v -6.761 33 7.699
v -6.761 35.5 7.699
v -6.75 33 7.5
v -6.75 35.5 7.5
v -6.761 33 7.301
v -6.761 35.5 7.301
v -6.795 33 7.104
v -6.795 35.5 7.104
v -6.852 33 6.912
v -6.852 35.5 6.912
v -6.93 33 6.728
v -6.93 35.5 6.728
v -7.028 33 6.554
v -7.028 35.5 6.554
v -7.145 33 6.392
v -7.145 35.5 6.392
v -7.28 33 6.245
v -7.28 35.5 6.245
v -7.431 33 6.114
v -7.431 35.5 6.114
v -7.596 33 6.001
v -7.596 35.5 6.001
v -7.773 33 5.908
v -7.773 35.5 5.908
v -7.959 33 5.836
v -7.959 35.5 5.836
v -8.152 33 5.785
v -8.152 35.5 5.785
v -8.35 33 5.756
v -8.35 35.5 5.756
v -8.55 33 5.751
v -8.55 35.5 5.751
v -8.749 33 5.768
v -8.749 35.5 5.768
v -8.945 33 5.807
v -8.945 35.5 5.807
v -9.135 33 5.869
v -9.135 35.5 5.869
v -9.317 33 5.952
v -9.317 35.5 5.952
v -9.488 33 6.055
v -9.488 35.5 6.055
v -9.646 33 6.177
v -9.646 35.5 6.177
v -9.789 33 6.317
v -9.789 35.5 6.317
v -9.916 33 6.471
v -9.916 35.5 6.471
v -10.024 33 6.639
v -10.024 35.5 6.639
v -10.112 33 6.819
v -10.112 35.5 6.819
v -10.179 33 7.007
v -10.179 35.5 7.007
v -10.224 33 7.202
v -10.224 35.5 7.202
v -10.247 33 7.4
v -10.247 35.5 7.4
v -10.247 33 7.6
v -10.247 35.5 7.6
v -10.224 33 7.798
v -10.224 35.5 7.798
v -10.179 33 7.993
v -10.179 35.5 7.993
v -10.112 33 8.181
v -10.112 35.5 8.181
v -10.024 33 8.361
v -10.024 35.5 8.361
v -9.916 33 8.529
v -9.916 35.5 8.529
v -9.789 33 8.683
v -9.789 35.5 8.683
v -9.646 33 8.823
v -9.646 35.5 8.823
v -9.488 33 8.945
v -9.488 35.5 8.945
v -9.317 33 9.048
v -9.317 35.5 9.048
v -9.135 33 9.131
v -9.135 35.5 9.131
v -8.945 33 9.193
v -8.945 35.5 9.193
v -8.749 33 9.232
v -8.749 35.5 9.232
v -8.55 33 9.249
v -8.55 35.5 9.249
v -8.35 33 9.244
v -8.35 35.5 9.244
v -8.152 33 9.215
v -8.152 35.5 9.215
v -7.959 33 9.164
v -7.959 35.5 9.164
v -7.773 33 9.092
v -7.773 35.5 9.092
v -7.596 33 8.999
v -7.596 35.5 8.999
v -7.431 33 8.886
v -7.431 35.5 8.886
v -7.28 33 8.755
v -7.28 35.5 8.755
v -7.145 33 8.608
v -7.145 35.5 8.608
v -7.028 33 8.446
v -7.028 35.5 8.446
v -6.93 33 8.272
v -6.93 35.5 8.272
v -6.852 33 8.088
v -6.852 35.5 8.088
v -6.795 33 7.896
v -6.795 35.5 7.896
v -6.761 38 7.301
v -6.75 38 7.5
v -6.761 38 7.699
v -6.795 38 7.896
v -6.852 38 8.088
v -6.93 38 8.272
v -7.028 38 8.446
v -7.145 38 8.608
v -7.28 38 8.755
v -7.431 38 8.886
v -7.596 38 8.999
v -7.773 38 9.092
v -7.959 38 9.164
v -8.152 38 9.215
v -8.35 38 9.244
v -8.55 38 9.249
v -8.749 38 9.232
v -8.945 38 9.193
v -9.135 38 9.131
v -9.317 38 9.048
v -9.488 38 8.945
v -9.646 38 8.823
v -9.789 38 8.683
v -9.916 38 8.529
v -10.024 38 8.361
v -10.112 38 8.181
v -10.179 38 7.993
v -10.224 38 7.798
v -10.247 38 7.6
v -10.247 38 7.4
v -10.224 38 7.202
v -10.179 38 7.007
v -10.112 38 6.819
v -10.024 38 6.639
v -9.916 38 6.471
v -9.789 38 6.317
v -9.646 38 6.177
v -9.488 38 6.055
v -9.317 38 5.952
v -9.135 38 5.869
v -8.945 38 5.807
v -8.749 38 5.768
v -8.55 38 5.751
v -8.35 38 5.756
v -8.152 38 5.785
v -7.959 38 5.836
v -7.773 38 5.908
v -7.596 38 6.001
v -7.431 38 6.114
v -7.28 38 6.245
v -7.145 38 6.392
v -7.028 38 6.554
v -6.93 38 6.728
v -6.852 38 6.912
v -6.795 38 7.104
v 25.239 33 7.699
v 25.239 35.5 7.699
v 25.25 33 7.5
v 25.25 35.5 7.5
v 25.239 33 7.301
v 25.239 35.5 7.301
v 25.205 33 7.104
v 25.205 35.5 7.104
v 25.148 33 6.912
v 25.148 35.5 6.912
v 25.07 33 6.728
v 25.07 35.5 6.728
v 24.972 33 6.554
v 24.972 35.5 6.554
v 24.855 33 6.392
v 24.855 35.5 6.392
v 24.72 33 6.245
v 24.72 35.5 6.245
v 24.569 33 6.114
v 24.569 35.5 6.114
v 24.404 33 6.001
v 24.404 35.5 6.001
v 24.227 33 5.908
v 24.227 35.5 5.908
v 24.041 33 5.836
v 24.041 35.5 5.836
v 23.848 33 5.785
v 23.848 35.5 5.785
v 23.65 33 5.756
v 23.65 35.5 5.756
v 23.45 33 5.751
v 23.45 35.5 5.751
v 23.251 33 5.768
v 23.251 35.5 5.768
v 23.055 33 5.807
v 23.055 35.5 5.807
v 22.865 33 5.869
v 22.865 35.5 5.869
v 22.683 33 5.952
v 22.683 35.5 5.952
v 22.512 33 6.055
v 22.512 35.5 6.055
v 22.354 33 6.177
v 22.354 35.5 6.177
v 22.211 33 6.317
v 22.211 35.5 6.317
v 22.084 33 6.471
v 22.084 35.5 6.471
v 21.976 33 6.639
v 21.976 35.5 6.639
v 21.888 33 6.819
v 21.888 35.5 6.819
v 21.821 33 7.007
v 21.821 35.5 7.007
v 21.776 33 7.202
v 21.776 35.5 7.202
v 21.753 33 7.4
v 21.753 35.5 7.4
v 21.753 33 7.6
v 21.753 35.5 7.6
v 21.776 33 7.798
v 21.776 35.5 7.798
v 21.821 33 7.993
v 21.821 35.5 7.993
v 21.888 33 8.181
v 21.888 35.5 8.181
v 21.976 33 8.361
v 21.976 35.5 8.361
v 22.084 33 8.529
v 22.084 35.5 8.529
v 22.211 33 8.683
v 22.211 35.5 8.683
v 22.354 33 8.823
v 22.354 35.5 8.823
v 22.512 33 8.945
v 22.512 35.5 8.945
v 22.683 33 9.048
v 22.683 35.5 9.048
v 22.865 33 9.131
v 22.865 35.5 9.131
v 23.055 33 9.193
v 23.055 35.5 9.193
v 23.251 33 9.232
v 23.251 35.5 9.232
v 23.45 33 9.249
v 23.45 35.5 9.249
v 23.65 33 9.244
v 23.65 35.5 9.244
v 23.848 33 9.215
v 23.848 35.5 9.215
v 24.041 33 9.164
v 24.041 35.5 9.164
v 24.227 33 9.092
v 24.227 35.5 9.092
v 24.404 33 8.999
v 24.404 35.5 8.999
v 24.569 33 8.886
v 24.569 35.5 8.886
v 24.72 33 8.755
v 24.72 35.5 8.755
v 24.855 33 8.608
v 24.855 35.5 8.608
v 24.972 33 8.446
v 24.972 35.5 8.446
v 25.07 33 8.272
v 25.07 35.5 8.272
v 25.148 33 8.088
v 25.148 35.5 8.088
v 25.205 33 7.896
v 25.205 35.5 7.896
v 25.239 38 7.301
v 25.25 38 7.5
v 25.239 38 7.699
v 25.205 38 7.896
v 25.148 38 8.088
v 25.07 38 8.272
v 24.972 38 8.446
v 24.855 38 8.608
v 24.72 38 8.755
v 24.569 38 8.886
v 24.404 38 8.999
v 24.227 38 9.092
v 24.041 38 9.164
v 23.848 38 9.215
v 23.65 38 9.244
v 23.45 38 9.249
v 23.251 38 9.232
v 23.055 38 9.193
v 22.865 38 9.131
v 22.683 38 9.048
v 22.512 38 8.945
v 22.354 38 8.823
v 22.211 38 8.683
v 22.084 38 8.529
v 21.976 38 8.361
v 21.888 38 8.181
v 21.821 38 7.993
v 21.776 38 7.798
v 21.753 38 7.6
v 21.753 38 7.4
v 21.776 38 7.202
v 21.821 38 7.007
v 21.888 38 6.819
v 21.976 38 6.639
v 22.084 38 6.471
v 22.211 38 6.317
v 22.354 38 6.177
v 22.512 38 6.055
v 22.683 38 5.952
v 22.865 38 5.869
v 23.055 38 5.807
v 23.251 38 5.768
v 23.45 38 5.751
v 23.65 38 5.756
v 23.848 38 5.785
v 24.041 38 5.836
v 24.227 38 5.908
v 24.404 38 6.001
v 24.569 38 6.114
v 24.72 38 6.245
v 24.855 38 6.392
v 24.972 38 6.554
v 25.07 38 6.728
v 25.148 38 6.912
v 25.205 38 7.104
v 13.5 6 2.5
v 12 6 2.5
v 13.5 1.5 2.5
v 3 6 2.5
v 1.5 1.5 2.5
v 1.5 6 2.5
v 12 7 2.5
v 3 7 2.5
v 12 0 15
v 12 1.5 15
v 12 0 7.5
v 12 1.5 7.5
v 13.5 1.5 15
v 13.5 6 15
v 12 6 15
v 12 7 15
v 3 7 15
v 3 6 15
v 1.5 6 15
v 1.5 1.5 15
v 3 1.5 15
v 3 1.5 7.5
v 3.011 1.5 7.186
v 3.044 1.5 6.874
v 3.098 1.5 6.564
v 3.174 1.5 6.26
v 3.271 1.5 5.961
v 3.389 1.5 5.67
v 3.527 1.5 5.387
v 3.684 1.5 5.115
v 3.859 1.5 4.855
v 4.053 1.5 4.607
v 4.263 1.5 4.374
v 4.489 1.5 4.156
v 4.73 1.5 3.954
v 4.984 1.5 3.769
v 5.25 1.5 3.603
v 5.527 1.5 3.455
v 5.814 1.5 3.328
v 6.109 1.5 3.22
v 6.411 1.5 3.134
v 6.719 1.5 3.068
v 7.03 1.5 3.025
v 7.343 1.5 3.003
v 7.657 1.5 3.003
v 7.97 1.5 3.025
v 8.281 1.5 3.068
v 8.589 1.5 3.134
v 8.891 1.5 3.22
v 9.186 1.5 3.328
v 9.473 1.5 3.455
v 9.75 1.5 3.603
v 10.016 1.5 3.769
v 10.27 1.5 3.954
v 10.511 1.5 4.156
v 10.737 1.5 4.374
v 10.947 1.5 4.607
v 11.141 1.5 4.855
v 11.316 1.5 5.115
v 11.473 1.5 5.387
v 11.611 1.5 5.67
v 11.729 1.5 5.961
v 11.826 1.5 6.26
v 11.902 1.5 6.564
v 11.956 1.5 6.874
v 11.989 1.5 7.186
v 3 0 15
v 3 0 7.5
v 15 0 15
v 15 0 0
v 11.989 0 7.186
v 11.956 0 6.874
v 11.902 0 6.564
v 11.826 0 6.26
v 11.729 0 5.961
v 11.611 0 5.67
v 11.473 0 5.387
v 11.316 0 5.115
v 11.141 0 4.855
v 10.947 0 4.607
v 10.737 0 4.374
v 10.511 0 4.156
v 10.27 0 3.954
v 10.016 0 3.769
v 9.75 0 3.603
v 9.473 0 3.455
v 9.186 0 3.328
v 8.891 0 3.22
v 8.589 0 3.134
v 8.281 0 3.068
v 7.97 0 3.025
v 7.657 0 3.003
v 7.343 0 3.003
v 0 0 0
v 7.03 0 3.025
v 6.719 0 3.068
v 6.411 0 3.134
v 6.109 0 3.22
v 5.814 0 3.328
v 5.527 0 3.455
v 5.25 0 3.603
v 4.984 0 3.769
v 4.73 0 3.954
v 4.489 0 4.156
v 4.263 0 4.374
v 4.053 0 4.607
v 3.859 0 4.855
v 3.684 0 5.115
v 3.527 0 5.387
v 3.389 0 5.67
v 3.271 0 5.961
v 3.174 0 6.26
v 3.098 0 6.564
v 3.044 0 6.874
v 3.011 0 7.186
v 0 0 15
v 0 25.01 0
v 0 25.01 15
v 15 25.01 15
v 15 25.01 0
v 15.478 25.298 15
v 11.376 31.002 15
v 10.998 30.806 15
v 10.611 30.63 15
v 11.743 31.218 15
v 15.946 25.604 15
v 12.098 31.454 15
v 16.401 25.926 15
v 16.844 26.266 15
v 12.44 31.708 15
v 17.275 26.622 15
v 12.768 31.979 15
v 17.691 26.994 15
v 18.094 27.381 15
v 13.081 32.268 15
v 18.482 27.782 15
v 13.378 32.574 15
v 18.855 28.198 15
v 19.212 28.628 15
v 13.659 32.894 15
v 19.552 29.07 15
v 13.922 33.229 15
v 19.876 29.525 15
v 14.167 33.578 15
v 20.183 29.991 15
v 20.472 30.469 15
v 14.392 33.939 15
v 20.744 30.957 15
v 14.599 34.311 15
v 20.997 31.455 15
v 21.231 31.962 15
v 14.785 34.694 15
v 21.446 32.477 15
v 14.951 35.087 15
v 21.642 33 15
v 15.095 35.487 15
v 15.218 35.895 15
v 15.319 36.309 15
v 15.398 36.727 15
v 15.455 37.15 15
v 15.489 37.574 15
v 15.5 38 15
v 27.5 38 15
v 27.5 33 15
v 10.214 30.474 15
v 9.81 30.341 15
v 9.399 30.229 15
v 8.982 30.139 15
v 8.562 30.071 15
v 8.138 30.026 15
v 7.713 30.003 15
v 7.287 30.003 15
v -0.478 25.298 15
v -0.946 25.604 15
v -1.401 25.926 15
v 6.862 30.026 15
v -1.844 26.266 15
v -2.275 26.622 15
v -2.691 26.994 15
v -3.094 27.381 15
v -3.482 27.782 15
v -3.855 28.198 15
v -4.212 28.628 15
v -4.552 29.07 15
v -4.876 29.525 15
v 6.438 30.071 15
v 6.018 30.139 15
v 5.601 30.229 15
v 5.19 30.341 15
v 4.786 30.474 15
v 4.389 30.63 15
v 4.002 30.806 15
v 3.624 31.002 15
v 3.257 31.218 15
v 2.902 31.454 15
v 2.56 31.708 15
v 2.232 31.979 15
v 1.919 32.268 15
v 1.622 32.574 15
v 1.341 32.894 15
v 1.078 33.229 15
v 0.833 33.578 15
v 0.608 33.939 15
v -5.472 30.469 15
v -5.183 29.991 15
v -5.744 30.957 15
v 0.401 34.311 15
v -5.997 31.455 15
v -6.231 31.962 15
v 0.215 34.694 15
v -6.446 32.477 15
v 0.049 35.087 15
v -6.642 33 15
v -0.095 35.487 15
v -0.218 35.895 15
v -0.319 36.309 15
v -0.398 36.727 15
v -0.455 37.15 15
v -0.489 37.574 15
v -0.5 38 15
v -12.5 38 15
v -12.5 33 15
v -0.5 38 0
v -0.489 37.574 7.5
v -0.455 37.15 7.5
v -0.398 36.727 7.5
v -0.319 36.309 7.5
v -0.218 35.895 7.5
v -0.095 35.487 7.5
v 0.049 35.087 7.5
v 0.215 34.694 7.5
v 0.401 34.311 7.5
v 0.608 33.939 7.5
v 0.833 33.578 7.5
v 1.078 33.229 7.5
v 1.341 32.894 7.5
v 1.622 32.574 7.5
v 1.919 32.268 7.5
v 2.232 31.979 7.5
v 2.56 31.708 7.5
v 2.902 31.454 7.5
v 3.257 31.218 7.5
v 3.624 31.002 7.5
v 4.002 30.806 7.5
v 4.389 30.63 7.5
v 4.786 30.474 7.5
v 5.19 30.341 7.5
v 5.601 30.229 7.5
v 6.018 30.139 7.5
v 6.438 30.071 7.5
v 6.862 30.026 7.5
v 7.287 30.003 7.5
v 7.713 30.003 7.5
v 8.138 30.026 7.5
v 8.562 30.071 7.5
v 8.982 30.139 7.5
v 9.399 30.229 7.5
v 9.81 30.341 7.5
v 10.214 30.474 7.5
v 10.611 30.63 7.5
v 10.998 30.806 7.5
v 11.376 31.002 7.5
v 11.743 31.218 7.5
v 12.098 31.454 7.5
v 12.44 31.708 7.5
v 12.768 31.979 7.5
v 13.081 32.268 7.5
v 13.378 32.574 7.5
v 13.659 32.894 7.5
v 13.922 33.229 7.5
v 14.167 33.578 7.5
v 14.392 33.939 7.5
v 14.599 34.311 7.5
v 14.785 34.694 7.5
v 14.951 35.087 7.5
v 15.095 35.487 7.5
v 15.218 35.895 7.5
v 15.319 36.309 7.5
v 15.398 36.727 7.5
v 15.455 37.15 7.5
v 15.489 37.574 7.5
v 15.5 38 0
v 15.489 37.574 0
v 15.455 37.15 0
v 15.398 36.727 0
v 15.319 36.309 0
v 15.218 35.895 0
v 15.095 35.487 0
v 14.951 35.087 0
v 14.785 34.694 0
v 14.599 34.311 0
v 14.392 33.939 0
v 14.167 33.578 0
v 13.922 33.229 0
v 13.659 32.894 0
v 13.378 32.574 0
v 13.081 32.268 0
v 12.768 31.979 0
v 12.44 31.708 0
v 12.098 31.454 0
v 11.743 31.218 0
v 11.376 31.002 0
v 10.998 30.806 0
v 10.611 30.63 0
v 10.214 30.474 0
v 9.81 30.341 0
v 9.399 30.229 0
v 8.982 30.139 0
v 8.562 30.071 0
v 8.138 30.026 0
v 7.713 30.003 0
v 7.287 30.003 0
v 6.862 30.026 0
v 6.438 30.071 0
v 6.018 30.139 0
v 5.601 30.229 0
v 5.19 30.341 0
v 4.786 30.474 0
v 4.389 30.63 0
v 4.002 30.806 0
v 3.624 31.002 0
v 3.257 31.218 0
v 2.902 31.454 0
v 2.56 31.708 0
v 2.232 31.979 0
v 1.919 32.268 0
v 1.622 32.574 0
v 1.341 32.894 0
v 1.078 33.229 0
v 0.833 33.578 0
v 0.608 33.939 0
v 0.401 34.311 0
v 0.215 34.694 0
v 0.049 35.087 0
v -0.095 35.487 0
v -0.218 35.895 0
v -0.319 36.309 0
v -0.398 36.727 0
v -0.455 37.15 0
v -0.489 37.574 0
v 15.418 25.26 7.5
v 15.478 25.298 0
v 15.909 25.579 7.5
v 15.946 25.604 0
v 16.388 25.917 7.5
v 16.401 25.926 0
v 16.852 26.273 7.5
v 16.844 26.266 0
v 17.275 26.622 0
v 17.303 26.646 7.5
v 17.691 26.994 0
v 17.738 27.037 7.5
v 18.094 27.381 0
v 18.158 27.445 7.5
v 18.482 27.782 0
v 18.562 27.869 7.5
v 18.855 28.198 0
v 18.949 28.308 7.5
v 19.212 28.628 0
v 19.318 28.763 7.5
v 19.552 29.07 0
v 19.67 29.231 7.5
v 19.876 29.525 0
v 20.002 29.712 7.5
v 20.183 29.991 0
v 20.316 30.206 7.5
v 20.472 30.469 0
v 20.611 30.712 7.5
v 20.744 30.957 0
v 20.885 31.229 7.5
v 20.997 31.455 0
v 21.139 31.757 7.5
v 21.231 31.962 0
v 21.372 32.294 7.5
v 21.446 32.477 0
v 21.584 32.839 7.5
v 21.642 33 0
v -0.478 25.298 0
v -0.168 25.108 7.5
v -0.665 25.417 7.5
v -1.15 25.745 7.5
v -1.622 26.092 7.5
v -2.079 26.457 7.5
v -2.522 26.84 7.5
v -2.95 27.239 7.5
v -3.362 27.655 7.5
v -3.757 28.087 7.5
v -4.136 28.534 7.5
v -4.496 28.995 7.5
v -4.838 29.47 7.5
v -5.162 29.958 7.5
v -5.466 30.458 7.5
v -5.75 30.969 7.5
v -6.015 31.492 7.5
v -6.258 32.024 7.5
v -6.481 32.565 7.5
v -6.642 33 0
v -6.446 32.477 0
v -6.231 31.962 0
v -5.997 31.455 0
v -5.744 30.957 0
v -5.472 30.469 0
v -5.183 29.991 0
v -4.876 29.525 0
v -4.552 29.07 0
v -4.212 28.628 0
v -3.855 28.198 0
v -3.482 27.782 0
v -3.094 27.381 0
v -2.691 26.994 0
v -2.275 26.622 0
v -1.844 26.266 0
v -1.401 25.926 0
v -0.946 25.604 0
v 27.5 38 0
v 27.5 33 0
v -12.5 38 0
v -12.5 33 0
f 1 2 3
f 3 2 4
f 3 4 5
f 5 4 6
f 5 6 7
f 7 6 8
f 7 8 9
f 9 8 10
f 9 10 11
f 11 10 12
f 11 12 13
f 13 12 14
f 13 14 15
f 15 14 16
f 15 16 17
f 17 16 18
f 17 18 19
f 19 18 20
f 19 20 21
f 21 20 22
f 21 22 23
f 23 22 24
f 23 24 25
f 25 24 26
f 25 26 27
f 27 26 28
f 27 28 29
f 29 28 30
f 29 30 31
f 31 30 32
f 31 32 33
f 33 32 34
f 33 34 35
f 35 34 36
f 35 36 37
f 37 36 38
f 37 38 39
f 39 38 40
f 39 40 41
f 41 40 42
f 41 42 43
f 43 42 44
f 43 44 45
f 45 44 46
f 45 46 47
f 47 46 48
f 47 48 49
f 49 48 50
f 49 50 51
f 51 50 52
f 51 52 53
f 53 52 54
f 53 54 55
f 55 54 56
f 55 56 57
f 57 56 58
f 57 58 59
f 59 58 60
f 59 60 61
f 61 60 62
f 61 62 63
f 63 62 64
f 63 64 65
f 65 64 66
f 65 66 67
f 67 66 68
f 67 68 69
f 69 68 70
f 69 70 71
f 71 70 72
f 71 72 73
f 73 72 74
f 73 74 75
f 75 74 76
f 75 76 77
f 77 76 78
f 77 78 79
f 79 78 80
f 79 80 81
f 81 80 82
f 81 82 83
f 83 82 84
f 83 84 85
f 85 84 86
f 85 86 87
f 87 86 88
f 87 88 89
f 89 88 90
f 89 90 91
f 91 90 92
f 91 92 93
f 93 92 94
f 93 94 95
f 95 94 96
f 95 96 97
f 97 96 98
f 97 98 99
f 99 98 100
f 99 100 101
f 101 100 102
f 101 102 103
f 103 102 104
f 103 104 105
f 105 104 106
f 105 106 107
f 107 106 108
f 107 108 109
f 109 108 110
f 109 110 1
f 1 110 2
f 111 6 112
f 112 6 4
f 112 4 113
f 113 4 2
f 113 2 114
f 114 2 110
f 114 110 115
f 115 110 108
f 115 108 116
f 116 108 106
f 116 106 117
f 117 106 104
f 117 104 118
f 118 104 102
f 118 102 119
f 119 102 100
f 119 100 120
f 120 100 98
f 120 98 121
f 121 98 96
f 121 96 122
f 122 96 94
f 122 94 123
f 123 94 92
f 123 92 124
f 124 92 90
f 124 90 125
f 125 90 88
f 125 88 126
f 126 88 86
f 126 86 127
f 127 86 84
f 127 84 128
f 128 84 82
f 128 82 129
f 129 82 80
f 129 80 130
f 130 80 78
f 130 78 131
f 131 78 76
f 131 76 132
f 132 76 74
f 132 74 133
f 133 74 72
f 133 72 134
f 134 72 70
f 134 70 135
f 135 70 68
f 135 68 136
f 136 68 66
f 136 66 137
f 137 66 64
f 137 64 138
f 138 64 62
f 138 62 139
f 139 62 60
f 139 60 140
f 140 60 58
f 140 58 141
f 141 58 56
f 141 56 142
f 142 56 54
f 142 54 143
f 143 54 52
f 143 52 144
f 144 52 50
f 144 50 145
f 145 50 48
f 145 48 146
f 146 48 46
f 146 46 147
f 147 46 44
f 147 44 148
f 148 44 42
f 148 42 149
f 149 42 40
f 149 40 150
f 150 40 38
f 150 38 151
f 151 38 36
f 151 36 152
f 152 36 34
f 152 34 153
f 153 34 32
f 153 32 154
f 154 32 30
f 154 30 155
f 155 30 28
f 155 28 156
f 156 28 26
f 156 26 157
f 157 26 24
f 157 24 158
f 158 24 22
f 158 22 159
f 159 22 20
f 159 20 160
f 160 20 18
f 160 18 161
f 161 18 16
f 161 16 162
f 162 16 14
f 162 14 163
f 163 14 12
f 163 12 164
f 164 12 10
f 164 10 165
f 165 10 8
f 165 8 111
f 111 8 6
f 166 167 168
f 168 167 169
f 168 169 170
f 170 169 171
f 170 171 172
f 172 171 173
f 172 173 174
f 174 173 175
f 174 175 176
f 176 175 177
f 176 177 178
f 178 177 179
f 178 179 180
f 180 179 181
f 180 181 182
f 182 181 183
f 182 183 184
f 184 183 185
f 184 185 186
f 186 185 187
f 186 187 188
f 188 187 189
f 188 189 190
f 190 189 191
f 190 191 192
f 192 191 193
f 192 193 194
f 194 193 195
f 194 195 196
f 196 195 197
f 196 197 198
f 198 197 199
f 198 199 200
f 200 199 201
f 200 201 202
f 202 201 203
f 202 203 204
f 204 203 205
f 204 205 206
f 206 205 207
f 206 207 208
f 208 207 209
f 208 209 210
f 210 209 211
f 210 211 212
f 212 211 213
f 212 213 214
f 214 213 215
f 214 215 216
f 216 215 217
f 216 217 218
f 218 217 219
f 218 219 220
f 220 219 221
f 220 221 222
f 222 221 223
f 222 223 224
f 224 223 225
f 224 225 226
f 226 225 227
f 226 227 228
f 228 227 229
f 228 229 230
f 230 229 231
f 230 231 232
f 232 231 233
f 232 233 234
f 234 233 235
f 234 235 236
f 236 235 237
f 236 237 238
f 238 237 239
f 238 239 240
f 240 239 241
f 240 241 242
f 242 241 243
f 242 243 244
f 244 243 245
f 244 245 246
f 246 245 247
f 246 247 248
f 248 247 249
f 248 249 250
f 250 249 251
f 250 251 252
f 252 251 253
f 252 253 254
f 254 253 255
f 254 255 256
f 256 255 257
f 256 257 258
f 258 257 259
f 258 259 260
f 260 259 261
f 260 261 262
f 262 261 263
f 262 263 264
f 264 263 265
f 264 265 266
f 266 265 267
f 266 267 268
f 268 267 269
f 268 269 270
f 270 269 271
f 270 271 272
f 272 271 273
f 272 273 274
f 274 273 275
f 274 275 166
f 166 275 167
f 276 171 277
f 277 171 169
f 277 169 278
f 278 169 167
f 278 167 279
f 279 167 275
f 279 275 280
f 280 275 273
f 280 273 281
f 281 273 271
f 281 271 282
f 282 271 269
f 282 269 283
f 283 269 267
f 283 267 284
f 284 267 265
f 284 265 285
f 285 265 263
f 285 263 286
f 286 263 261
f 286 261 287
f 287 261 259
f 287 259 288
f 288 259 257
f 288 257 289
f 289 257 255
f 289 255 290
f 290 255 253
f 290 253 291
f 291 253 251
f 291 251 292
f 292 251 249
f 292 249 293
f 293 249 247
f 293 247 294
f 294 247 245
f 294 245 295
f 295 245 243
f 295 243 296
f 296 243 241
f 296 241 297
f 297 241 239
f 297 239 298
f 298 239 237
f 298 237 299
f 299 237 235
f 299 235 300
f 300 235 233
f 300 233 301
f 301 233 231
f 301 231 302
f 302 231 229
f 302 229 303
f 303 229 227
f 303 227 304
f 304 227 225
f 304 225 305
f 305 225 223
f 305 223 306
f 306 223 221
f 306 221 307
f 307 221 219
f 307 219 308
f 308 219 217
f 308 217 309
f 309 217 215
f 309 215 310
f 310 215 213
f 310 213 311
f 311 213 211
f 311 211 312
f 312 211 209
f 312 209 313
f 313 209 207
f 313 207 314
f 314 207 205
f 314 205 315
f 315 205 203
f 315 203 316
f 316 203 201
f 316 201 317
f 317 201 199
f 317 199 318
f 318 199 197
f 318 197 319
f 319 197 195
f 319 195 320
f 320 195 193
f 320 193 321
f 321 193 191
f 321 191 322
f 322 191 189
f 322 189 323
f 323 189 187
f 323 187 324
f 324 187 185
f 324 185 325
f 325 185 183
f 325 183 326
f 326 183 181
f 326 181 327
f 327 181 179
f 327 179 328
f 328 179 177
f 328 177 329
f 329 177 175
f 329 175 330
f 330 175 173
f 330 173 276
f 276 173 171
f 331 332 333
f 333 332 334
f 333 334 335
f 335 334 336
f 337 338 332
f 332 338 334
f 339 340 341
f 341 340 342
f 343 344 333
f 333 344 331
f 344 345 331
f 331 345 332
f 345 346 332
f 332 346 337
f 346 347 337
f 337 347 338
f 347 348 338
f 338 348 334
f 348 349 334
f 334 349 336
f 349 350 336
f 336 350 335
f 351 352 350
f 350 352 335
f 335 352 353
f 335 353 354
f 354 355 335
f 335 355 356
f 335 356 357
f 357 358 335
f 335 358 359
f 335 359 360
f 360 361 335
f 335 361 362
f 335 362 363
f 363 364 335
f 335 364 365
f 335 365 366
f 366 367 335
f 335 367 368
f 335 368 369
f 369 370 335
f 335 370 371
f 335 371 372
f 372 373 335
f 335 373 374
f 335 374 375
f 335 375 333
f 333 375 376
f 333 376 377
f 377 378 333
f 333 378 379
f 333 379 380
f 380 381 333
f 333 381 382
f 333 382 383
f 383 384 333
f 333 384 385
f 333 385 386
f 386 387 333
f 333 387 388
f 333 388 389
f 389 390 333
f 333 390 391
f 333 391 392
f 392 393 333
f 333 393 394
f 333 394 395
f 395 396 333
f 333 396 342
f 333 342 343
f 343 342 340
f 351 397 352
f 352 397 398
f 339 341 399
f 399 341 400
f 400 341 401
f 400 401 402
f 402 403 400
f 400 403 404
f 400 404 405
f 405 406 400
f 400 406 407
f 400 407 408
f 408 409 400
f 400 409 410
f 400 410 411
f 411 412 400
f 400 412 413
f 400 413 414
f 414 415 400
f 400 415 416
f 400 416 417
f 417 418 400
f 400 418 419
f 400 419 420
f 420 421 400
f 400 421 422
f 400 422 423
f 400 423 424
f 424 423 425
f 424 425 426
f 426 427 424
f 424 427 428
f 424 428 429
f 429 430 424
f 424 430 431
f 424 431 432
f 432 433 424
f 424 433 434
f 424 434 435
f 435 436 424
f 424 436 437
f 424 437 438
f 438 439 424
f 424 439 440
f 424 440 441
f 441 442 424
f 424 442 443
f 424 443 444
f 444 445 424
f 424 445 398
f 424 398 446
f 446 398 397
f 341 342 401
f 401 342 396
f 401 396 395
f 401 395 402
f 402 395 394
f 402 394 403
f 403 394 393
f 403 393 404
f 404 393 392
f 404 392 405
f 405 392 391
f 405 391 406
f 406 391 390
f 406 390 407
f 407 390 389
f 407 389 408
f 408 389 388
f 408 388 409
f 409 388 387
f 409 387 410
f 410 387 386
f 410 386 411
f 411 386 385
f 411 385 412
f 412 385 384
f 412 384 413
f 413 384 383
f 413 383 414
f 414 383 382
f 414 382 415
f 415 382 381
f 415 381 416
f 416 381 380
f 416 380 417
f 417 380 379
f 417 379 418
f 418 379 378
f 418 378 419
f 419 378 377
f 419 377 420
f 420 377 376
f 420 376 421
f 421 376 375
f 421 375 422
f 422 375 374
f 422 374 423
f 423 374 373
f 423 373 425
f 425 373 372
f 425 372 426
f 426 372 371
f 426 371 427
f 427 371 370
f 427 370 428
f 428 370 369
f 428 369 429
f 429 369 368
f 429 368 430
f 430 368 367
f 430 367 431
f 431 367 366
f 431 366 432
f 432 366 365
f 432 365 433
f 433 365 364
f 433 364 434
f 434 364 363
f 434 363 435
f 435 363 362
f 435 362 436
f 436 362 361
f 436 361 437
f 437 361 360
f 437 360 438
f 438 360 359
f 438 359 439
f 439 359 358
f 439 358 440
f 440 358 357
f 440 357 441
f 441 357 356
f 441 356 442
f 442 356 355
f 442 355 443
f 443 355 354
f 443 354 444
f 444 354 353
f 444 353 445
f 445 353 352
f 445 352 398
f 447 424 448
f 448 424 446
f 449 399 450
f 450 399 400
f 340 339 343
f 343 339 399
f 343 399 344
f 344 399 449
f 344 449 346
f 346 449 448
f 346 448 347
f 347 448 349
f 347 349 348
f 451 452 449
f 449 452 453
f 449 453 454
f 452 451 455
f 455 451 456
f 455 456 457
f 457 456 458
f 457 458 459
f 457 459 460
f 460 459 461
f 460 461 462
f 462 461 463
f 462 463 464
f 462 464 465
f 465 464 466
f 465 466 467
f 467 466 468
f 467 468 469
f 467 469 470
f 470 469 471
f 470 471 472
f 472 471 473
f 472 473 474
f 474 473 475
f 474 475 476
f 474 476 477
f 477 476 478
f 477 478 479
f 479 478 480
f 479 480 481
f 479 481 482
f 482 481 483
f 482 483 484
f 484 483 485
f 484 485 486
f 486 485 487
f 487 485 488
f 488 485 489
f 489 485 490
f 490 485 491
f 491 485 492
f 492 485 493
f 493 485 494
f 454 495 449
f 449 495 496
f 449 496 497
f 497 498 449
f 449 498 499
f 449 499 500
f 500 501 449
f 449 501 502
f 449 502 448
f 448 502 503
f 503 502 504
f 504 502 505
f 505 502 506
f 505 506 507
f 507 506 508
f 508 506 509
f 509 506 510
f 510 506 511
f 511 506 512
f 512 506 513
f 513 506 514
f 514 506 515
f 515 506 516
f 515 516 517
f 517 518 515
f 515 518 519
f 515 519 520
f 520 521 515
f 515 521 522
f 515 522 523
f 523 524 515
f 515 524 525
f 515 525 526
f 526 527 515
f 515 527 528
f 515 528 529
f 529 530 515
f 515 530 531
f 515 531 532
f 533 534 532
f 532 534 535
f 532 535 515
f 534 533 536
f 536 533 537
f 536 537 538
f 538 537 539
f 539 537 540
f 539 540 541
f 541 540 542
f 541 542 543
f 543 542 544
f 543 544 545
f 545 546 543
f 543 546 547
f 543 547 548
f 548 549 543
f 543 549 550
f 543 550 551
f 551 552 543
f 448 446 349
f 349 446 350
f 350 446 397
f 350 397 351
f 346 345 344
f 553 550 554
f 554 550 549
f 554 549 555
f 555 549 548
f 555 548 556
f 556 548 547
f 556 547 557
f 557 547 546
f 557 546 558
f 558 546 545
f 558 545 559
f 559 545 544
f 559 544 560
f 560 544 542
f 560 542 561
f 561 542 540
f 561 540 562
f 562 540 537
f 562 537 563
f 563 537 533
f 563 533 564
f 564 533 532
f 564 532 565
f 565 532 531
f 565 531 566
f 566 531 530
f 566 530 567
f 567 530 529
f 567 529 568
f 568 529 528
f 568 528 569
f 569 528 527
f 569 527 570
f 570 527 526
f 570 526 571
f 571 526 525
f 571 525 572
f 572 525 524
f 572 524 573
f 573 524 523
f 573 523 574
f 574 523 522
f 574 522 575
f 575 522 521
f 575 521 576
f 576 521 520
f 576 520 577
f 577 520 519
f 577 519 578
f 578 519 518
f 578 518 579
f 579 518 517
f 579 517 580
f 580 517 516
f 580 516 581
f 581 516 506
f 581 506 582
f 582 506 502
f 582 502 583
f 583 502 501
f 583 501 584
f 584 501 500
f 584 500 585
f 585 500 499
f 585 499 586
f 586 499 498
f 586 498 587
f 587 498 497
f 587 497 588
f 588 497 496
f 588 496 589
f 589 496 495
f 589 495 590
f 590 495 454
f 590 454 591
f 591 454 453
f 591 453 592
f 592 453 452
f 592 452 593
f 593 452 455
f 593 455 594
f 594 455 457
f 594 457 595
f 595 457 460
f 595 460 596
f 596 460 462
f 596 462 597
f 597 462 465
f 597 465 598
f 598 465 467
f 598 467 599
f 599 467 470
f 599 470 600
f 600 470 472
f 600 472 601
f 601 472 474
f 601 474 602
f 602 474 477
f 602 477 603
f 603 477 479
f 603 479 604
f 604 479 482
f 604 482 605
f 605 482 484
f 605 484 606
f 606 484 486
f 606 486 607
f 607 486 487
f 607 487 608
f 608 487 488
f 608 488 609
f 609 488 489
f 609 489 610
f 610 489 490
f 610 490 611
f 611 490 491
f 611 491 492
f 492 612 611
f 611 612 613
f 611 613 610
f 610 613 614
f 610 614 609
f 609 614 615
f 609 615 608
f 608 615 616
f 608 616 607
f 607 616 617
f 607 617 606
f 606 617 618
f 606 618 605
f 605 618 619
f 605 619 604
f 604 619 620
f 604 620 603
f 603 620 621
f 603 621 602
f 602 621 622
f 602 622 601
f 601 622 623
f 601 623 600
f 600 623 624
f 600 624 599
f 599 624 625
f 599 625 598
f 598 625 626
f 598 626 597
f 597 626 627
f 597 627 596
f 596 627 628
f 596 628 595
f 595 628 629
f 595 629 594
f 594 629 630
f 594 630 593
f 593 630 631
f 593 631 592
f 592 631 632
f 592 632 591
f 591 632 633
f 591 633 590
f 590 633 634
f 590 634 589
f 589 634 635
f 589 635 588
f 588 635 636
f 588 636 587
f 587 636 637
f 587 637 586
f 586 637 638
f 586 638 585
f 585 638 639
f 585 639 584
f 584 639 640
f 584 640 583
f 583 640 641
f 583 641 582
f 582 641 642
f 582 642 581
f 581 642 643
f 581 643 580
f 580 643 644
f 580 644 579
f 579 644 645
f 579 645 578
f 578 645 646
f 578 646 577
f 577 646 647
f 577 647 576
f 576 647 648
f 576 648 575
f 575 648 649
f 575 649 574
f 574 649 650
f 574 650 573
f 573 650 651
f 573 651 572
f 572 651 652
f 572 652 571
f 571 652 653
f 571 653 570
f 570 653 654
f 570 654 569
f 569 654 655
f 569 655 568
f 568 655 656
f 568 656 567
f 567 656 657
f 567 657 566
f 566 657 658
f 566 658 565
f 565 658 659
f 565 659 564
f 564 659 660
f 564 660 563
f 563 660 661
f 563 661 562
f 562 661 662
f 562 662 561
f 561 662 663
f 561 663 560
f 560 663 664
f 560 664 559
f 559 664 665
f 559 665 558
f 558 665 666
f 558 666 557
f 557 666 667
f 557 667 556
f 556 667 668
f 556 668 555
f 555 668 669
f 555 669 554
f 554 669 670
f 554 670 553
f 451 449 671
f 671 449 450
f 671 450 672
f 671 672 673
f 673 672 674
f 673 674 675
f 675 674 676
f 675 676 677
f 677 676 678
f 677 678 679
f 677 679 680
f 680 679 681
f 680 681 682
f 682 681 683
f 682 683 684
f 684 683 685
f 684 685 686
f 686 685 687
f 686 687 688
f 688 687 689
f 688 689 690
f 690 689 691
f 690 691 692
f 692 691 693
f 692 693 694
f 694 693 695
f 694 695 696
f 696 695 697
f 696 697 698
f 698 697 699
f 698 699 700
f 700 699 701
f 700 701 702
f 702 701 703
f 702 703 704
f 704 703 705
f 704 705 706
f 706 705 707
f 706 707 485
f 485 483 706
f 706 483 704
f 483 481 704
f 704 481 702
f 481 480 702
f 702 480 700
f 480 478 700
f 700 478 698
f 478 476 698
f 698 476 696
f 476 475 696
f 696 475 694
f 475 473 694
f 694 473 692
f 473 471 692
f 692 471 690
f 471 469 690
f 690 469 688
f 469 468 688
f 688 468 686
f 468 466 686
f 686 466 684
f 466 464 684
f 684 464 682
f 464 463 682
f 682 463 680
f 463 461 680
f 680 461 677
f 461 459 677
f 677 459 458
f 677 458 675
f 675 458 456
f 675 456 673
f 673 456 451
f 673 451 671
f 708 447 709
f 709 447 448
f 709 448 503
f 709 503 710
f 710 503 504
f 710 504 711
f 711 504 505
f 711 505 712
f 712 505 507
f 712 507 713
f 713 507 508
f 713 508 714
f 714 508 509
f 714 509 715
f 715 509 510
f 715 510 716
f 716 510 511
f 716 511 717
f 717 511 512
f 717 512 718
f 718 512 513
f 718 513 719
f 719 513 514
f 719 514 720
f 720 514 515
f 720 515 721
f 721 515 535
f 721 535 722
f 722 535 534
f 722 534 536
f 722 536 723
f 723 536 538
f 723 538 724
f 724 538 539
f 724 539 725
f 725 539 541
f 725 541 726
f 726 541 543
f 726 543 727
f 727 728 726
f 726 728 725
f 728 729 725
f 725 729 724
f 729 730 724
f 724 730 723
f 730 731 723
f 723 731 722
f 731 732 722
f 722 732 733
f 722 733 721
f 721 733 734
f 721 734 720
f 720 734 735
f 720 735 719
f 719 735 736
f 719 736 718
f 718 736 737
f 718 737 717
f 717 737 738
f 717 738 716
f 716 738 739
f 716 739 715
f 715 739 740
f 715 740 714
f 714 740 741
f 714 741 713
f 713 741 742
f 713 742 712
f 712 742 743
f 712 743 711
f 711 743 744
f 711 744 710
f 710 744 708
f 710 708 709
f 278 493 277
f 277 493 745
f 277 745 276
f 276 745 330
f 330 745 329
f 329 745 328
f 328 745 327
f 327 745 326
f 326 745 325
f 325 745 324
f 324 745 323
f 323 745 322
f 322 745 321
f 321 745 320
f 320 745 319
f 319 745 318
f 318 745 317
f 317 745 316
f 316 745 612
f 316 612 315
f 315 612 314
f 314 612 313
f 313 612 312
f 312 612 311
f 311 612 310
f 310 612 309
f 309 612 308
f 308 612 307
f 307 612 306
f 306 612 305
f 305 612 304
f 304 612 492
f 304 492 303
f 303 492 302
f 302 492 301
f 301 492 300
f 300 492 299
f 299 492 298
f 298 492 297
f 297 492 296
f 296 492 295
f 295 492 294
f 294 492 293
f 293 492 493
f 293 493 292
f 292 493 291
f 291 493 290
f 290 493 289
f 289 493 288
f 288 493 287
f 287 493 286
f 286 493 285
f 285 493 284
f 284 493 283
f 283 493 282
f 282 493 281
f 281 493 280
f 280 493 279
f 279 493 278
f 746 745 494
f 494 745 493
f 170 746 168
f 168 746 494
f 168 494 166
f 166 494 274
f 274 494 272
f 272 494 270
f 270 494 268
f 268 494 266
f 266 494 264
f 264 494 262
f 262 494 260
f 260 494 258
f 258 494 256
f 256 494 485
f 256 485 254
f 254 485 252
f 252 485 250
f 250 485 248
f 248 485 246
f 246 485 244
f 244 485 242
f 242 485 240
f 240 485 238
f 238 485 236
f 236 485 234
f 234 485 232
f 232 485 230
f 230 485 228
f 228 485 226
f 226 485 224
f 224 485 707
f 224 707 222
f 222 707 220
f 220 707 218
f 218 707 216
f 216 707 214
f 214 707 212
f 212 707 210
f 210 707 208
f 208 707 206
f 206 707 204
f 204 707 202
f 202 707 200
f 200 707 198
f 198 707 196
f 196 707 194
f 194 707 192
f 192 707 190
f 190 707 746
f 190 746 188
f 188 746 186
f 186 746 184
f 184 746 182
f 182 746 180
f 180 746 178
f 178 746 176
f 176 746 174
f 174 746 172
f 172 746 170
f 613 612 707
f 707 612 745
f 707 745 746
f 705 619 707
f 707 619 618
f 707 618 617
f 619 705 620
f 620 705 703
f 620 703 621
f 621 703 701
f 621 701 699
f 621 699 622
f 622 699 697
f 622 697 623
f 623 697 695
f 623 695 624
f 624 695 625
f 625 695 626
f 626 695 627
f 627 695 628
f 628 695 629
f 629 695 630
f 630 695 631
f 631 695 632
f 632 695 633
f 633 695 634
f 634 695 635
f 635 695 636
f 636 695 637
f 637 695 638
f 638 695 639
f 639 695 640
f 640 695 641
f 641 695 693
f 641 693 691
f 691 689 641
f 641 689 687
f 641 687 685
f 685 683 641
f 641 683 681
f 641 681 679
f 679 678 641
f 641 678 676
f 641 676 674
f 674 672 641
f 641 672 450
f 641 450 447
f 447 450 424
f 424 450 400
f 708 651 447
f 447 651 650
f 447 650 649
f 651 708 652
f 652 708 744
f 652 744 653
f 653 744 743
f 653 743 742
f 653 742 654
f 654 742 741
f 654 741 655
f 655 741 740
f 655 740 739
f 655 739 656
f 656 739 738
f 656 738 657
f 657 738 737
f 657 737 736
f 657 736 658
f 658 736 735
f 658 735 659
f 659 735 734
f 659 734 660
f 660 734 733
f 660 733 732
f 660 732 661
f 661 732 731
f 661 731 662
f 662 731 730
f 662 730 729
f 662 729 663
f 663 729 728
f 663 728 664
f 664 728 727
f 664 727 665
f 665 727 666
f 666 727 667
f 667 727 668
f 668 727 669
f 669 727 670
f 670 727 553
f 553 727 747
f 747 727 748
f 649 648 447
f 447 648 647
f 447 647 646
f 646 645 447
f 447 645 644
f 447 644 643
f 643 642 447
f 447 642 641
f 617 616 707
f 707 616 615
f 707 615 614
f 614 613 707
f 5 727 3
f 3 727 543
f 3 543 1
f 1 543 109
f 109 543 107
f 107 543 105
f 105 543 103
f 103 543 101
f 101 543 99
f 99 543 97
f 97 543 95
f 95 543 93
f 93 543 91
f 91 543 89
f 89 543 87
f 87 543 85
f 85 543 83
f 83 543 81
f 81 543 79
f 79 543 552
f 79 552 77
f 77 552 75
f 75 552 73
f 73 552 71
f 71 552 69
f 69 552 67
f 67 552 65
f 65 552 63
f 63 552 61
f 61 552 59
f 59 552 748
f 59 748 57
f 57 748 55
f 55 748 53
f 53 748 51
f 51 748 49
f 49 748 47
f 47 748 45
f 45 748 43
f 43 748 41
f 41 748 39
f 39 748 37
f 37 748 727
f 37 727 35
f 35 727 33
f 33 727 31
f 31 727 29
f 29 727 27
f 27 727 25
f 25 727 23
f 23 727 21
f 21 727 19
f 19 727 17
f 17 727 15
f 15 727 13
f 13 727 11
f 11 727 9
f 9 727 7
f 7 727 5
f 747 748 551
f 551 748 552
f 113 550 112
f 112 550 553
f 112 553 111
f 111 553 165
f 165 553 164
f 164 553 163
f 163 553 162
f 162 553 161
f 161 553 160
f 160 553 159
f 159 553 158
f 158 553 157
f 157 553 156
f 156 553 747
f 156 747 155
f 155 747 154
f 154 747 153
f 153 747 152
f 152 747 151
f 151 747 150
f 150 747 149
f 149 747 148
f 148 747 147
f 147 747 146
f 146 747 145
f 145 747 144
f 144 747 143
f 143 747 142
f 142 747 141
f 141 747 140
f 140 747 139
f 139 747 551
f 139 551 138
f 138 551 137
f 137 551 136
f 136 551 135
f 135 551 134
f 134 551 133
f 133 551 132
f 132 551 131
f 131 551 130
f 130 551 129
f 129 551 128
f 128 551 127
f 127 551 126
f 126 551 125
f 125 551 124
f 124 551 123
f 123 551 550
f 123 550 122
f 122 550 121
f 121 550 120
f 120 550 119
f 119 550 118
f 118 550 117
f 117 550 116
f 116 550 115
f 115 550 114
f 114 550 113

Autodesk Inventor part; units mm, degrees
ref_plane "YZ Plane" through (0, 0, 0) normal (1, 0, 0) x (0, 1, 0)
ref_plane "XZ Plane" through (0, 0, 0) normal (0, 1, 0) x (-1, 0, 0)
ref_plane "XY Plane" through (0, 0, 0) normal (0, 0, 1) x (1, 0, 0)
sketch "Sketch1" plane through (0, 0, 0) normal (0, 0, 1) x (1, 0, 0)
  line L0 (0, 0) -> (15, 0)
  line L1 (15, 0) -> (15, 30)
  line L2 (15, 30) -> (0, 30)
  line L3 (0, 30) -> (0, 0)
  line L4 (7.5, 30) -> (7.5, 38)
  arc A0 (-0.5, 38) -> (15.5, 38) centre (7.5, 38) ccw
  arc A1 (-7.5, 38) -> (22.5, 38) centre (7.5, 38) ccw
  line L5 (-0.5, 38) -> (-7.5, 38)
  line L6 (15.5, 38) -> (22.5, 38)
  line L7 (22.5, 38) -> (27.5, 38)
  line L8 (27.5, 38) -> (27.5, 33)
  line L9 (27.5, 33) -> (21.6421, 33)
  line L10 (-7.5, 38) -> (-12.5, 38)
  line L11 (-12.5, 38) -> (-12.5, 33)
  line L12 (-12.5, 33) -> (-6.6421, 33)
  dimension "d0" = 15
  dimension "d1" = 30
  dimension "d2" = 8
  dimension "d3" = 16
  dimension "d4" = 30
  dimension "d5" = 5
  dimension "d6" = 5
  dimension "d7" = 5
  dimension "d8" = 5
extrude "Extrusion1" add sketch "Sketch1" along normal blind 15
sketch "Sketch2" plane through (0, 0, 15) normal (0, 0, 1) x (1, 0, 0)
  line L0 (0, 0) -> (15, 0) projected
  line L1 (7.5, 0) -> (3, 0)
  line L2 (3, 0) -> (3, 1.5)
  line L3 (3, 1.5) -> (1.5, 1.5)
  line L4 (1.5, 1.5) -> (1.5, 6)
  line L5 (1.5, 6) -> (3, 6)
  line L6 (3, 6) -> (3, 7)
  line L7 (7.5, 0) -> (12, 0)
  line L8 (12, 0) -> (12, 1.5)
  line L9 (12, 1.5) -> (13.5, 1.5)
  line L10 (13.5, 1.5) -> (13.5, 6)
  line L11 (13.5, 6) -> (12, 6)
  line L12 (12, 6) -> (12, 7)
  line L13 (12, 7) -> (3, 7)
  dimension "d11" = 4.5
  dimension "d12" = 1.5
  dimension "d13" = 1.5
  dimension "d14" = 4.5
  dimension "d15" = 1.5
  dimension "d16" = 1
  dimension "d17" = 4.5
  dimension "d18" = 1.5
sketch "Sketch3" plane through (0, 0, 0) normal (0, -1, 0) x (1, 0, 0)
  line L0 (-0.5, 15) -> (15.5, 15) projected
  line L1 (7.5, 15) -> (7.5, 7.5)
  circle A0 centre (7.5, 7.5) radius 4.5
  point P0 (0, 0)
  dimension "d19" = 7.5
  dimension "d20" = 9
extrude "Extrusion2" cut sketch "Sketch3" against normal blind 1.5
sketch "Sketch4" plane through (7.5, 1.5, 7.5) normal (0, -1, 0) x (1, 0, 0)
  point P0 (-7.5, -7.5)
extrude "Extrusion3" cut sketch "Sketch2" against normal blind 7.5
sketch "Sketch5" plane through (0, 0, 7.5) normal (0, 0, 1) x (1, 0, 0)
  line L0 (13.5, 6) -> (13.5, 1.5) projected
  line L1 (3, 1.5) -> (1.5, 1.5) projected
  line L2 (13.5, 1.5) -> (1.5, 1.5)
  line L3 (1.5, 1.5) -> (1.5, 6) projected
  line L4 (1.5, 1.5) -> (1.5, 6)
  line L5 (1.5, 6) -> (3, 6) projected
  line L6 (1.5, 6) -> (3, 6)
  line L7 (3, 7) -> (12, 7) projected
  line L8 (3, 6) -> (3, 7)
  line L9 (3, 7) -> (12, 7)
  line L10 (12, 6) -> (13.5, 6) projected
  line L11 (12, 7) -> (12, 6)
  line L12 (12, 6) -> (13.5, 6)
  line L13 (13.5, 6) -> (13.5, 1.5)
  point P0 (0, 0)
extrude "Extrusion4" cut sketch "Sketch5" against normal blind 5
sketch "Sketch6" plane through (-12.5, 38, 0) normal (0, 1, 0) x (1, 0, 0)
  line L0 (0, 0) -> (0, -15) projected
  line L1 (0, -7.5) -> (4, -7.5)
  line L2 (40, 0) -> (40, -15) projected
  line L3 (40, -7.5) -> (36, -7.5)
  circle A0 centre (4, -7.5) radius 1.75
  circle A1 centre (36, -7.5) radius 1.75
  point P0 (12.5, 0)
  dimension "d27" = 4
  dimension "d28" = 4
  dimension "d29" = 3.5
  dimension "d30" = 3.5
extrude "Extrusion5" cut sketch "Sketch6" against normal through all
properties part number "prism_holder_1"
